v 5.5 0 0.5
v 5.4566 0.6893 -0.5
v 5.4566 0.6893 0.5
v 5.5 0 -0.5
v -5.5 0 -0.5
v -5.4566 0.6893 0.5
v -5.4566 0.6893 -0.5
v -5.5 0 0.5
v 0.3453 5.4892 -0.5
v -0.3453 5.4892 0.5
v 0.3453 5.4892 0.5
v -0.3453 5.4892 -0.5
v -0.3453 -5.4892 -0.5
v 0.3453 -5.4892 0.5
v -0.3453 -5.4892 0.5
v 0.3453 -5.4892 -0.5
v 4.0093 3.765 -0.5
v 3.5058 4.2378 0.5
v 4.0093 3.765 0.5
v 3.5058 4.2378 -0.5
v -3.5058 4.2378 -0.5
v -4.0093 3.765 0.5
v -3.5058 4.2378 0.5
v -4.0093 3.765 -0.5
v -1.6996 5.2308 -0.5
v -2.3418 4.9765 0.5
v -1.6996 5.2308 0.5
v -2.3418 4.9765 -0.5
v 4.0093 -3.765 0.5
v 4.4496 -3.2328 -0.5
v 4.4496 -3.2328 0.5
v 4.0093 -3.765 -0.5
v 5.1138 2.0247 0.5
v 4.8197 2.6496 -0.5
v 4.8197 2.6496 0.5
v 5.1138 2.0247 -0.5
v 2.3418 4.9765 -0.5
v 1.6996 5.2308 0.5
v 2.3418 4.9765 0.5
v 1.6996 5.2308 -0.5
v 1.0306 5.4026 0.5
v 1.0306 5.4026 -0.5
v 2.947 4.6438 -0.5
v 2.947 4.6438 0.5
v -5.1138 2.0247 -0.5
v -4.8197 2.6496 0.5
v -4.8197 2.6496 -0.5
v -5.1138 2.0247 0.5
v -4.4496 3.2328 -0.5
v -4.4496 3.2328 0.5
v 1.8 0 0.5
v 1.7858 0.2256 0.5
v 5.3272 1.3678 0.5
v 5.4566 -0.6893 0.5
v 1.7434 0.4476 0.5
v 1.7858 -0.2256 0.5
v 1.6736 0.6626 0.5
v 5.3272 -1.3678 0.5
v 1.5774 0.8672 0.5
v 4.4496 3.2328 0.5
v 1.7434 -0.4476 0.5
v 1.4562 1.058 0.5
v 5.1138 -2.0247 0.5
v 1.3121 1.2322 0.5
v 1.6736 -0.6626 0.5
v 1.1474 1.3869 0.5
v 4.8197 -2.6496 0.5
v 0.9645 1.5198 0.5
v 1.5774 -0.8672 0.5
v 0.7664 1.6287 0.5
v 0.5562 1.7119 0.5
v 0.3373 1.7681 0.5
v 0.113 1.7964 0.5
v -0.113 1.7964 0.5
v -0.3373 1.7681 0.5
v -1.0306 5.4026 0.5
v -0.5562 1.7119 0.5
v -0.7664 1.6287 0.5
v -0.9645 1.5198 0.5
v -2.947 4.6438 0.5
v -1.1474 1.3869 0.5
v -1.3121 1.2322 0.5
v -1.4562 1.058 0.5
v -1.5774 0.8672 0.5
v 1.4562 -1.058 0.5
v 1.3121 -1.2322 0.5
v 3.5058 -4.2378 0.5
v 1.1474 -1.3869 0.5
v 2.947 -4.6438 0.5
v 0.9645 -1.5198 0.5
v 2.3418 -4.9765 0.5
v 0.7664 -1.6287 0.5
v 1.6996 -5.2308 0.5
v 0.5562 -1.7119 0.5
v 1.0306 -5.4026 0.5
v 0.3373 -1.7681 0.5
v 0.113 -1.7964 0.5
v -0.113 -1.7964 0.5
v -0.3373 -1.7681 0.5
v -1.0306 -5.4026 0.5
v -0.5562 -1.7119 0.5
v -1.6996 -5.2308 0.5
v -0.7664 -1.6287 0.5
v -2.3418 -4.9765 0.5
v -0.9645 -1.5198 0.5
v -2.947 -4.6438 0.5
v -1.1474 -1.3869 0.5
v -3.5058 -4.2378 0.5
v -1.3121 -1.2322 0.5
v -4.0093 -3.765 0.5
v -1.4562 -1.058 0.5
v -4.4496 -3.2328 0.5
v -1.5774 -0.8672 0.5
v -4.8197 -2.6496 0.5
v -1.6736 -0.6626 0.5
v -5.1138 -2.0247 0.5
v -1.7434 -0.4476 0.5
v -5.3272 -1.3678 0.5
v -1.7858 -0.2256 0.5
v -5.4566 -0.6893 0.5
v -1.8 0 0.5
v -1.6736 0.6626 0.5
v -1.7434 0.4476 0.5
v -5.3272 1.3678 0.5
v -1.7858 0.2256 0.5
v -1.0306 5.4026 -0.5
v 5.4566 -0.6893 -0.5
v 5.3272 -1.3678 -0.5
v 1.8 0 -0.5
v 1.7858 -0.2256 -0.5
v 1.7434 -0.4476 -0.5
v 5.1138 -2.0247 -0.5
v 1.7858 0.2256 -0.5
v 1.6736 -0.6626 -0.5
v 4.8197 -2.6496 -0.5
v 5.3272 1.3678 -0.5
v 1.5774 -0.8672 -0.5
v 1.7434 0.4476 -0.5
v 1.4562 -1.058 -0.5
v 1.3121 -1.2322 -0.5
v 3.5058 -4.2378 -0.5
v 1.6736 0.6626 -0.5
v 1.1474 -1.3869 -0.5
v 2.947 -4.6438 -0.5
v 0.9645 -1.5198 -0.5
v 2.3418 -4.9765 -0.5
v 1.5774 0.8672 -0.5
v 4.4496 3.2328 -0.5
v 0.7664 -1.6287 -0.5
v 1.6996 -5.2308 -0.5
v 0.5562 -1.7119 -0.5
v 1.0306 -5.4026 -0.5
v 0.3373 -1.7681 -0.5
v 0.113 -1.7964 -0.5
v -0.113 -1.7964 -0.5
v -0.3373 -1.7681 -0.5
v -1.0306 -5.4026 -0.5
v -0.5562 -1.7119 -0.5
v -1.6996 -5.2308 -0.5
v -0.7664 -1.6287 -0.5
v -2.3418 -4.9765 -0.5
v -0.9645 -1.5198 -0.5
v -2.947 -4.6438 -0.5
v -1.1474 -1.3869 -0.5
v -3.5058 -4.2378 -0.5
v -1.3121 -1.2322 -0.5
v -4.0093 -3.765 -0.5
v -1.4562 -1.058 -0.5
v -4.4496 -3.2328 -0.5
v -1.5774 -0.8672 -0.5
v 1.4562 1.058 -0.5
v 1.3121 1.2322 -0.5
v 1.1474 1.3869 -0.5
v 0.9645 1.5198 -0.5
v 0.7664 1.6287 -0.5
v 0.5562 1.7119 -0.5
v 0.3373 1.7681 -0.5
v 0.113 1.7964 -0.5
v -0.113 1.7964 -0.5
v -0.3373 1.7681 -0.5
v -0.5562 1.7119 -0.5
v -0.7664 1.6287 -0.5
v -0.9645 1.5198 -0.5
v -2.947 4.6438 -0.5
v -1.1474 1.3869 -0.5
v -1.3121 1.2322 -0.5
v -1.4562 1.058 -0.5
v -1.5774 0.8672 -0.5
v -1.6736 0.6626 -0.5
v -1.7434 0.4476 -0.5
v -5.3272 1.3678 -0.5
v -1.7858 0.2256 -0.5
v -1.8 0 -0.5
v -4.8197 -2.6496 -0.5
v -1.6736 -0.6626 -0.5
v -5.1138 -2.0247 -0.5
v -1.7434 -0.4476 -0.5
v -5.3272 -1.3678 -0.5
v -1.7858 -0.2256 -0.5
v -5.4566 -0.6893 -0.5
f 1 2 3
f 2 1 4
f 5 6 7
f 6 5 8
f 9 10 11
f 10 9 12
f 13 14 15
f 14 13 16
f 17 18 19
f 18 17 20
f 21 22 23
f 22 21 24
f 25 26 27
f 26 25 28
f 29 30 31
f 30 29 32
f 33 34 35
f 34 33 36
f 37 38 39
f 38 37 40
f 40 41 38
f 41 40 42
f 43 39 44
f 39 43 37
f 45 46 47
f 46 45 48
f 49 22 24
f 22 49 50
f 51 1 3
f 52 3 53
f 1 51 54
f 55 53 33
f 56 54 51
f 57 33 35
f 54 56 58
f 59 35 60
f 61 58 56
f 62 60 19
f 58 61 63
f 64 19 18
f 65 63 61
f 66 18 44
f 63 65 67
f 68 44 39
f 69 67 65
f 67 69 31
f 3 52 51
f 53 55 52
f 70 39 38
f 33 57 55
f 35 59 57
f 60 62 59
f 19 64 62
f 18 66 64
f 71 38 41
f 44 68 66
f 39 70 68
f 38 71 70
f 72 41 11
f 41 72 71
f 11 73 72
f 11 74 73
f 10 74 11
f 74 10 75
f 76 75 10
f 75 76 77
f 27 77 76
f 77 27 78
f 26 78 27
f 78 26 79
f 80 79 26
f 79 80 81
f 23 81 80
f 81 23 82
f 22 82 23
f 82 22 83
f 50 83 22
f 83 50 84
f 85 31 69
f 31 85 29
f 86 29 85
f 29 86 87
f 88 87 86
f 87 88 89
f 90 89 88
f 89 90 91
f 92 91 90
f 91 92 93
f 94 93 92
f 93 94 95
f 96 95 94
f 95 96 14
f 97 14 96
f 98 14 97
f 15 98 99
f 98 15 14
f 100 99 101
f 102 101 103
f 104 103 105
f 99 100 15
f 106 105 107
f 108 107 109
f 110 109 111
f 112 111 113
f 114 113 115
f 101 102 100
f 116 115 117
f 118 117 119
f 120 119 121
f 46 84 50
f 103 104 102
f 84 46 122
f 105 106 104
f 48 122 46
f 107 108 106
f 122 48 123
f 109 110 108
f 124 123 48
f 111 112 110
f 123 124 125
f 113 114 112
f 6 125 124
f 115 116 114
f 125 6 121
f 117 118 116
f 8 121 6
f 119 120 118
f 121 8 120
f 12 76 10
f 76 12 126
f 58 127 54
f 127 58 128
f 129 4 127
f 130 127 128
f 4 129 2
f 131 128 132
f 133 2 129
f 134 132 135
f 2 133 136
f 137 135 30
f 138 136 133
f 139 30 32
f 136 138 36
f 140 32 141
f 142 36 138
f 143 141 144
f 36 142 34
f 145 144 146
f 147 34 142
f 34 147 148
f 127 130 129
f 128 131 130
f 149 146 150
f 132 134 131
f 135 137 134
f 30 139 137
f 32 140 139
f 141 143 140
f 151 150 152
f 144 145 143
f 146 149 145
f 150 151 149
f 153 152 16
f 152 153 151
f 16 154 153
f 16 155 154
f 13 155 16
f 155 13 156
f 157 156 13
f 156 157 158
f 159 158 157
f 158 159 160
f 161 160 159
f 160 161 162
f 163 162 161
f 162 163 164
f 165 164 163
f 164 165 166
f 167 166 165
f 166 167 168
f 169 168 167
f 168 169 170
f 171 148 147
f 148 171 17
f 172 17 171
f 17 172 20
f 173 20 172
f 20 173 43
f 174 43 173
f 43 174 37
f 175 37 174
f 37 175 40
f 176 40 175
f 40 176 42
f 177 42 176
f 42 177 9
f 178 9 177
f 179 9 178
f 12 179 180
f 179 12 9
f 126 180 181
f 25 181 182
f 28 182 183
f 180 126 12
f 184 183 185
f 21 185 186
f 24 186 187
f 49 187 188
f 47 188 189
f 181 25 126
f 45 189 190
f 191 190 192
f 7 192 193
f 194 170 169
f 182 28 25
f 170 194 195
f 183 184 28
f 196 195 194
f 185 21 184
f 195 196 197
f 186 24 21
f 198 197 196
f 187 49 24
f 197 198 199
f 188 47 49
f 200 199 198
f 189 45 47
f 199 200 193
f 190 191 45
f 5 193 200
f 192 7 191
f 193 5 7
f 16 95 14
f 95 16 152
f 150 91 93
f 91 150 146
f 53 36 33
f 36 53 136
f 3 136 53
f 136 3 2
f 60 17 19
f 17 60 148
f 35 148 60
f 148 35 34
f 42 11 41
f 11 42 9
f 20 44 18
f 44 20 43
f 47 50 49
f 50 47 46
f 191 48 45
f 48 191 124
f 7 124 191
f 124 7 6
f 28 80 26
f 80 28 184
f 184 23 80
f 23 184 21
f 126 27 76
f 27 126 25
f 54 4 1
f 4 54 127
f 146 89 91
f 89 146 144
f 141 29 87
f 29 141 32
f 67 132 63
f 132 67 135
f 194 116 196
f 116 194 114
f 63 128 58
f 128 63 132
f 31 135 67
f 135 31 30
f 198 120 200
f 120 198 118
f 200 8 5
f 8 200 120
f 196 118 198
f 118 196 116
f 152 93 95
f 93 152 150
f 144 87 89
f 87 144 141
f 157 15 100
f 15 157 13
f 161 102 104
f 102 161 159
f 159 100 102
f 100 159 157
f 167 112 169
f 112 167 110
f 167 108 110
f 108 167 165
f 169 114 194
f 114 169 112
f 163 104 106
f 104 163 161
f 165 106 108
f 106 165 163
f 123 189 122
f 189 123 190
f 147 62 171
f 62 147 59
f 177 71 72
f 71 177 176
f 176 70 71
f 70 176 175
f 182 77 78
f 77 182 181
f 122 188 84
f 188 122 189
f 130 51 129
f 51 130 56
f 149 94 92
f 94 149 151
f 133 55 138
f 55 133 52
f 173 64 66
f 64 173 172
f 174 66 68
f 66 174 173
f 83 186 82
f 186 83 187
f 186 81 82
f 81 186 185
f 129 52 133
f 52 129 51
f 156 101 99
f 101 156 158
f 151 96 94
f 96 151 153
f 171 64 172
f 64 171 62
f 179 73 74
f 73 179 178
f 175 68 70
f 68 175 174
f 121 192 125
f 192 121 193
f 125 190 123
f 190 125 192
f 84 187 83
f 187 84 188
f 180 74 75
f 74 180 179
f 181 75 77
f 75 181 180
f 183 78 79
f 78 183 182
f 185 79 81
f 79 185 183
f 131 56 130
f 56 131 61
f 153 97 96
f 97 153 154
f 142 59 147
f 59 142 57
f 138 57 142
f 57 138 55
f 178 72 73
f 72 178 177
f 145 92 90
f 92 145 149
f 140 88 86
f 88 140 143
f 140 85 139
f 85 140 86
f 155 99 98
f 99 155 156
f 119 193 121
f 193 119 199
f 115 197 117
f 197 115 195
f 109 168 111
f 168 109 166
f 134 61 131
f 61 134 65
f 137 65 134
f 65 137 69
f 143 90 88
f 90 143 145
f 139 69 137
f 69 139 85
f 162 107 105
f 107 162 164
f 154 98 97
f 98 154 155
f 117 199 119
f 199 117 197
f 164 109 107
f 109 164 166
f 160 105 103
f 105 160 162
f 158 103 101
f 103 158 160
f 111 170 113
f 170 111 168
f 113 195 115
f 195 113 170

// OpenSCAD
$fn = 50;


difference() {
	union() {
		translate(v = [0, 0, -0.5000000000]) {
			cylinder(h = 1, r = 5.5000000000);
		}
	}
	union() {
		translate(v = [0, 0, -100.0000000000]) {
			cylinder(h = 200, r = 1.8000000000);
		}
	}
}
